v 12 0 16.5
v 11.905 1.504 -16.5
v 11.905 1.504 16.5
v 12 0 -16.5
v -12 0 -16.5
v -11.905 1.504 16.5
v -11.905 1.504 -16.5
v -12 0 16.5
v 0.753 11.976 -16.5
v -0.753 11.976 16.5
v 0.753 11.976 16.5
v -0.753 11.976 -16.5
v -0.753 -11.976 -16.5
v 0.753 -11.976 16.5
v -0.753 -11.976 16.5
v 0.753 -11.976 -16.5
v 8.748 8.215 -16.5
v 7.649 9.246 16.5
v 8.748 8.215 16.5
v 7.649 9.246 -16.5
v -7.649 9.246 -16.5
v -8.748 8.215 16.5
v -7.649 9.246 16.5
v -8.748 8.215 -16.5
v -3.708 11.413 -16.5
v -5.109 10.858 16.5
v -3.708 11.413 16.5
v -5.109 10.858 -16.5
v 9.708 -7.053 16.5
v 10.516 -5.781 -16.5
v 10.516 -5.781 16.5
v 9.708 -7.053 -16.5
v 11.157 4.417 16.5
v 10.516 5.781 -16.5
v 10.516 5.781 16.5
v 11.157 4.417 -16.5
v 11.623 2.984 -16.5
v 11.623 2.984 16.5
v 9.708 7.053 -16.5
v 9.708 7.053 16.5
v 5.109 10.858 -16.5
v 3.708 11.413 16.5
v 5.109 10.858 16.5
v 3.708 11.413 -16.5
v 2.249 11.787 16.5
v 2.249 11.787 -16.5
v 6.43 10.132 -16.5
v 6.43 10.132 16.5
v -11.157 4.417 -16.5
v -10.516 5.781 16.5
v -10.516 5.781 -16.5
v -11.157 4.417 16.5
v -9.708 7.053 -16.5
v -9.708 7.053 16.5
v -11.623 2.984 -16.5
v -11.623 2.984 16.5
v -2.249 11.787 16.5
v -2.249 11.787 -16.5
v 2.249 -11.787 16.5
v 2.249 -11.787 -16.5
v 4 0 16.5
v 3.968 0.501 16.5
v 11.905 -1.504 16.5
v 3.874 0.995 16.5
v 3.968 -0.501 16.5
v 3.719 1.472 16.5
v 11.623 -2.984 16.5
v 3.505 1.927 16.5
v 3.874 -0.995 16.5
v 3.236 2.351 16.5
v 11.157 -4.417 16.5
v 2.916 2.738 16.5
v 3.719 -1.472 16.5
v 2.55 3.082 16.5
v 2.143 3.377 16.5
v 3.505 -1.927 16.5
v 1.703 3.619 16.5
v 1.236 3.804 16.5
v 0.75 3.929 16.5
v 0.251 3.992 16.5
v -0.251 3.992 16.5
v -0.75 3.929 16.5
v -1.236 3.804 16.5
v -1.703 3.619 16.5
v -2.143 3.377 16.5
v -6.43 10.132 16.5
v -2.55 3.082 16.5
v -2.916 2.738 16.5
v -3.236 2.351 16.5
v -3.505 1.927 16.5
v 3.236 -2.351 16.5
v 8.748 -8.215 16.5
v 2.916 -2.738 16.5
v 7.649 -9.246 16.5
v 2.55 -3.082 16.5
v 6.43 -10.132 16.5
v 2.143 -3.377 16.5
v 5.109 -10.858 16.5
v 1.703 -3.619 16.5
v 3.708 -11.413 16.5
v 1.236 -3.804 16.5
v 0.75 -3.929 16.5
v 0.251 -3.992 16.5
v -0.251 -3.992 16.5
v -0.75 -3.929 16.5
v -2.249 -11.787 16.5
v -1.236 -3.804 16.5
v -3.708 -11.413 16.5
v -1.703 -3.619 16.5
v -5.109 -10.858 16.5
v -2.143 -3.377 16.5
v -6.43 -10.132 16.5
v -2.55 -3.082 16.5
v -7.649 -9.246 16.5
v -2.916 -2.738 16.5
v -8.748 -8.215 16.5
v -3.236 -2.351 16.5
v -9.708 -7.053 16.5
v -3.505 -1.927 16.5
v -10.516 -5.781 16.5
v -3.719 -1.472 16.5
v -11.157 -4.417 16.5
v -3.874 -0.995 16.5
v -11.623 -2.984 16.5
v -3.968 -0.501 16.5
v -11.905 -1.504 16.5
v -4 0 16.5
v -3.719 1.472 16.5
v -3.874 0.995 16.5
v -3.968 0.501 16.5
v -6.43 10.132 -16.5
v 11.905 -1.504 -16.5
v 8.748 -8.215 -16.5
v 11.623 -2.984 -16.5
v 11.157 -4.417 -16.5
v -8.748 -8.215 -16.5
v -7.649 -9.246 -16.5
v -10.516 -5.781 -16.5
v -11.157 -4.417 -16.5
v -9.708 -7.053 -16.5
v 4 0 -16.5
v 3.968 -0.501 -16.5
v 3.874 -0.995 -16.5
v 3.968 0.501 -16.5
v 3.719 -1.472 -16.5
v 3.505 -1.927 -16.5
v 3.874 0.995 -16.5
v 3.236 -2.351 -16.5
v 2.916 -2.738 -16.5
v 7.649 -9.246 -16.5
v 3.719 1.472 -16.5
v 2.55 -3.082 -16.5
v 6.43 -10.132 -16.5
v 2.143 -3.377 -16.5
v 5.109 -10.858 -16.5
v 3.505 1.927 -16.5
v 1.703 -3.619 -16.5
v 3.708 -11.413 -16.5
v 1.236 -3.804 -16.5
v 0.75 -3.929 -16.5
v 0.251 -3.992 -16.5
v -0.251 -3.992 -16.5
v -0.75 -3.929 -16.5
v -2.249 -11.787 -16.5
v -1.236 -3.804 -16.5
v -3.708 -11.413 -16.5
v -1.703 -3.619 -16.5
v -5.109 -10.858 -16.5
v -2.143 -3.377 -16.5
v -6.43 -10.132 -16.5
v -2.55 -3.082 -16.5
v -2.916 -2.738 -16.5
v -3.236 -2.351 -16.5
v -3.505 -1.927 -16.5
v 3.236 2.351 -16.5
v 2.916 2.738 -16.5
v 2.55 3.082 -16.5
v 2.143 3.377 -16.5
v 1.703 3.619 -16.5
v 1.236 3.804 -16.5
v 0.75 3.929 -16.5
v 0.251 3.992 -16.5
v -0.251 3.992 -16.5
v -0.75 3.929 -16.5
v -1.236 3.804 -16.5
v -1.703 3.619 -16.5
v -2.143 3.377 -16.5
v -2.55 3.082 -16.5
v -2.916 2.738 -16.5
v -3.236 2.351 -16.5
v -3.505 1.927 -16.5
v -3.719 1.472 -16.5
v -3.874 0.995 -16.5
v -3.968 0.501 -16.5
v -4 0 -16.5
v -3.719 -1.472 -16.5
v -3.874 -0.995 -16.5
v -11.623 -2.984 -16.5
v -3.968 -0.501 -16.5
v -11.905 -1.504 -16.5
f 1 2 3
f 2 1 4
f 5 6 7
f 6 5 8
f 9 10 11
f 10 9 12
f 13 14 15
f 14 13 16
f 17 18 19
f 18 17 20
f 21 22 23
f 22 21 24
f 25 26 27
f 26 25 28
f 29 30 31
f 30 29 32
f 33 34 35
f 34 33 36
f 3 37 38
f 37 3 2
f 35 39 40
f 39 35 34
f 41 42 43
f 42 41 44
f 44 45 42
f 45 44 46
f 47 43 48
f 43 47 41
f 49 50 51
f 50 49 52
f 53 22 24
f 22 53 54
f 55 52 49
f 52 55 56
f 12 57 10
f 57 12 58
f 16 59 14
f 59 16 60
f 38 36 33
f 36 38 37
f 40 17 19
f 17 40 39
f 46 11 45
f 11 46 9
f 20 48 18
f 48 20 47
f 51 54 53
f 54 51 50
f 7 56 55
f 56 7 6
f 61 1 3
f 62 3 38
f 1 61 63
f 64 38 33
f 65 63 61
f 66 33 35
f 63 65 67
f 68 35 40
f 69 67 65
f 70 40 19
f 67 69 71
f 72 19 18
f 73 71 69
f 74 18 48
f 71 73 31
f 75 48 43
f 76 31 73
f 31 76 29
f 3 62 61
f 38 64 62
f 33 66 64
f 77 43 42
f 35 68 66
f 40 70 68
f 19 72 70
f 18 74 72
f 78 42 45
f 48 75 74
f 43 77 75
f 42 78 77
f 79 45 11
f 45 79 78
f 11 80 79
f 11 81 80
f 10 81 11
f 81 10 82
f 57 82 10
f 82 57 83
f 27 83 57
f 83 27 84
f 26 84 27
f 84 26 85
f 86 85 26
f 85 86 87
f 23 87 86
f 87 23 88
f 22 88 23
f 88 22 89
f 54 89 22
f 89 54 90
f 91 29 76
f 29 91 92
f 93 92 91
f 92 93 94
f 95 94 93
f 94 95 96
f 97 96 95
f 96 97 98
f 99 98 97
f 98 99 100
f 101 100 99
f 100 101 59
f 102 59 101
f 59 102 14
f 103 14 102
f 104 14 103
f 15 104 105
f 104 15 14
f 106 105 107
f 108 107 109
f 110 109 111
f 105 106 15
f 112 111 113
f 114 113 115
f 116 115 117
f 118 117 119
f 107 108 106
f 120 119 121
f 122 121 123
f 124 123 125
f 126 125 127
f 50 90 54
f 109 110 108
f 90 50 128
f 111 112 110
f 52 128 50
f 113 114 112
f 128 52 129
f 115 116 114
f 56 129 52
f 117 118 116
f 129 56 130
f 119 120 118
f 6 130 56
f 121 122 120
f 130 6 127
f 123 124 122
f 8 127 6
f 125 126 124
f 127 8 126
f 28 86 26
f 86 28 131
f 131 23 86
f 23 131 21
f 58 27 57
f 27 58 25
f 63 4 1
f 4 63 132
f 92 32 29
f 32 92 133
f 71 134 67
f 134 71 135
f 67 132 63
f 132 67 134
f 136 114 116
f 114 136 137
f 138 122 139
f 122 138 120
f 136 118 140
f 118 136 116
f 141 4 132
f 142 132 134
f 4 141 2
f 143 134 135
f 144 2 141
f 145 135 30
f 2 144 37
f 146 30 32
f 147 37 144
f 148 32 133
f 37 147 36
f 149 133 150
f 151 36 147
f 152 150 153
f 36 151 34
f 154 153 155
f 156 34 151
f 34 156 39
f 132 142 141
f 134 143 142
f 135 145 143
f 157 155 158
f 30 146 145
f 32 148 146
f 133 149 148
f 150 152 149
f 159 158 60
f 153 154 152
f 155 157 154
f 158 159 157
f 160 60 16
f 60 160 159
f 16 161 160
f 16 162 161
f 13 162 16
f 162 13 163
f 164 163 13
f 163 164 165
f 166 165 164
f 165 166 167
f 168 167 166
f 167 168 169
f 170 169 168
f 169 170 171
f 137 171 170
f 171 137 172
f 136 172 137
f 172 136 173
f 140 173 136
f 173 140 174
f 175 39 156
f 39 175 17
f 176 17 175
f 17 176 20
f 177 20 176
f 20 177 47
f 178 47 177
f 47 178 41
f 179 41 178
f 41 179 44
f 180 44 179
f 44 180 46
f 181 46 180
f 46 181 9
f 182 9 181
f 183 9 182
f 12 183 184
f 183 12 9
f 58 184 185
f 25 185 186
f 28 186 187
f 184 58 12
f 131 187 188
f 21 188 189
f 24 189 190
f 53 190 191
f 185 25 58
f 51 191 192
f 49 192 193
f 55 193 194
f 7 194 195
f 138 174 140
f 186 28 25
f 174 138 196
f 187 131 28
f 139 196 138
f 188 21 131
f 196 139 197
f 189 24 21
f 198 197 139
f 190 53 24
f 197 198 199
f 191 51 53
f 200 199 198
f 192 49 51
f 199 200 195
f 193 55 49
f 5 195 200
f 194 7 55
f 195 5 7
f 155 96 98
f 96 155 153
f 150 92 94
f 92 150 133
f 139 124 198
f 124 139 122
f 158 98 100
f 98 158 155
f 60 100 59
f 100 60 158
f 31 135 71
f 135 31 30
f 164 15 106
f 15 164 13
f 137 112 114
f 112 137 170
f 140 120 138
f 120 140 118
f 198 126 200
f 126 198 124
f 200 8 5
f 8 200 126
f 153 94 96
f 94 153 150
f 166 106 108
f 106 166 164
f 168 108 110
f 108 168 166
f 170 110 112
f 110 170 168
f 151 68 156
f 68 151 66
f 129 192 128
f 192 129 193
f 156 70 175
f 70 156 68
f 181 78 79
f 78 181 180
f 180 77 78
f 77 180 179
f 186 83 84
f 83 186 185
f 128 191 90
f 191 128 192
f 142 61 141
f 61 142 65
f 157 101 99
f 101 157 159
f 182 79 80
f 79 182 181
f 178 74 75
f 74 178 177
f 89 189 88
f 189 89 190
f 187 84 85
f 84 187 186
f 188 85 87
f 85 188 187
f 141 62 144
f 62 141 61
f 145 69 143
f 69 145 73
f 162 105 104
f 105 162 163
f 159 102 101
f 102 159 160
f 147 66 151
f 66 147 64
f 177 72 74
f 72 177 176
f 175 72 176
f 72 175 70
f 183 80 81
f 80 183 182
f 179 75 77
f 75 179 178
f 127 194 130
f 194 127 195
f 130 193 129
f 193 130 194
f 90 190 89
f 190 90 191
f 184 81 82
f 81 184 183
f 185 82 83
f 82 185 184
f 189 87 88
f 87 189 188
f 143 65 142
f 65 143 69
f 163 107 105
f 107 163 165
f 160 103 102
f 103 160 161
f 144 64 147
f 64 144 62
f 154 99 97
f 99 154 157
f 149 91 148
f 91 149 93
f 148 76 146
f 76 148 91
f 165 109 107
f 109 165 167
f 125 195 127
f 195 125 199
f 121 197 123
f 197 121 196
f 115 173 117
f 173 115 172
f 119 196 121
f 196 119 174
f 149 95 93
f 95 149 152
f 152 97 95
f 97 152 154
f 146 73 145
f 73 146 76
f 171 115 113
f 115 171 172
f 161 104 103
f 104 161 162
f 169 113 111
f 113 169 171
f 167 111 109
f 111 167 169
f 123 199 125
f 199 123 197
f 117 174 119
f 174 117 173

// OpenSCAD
$fn = 50;


difference() {
	union() {
		translate(v = [0, 0, -16.5000000000]) {
			cylinder(h = 33, r = 12.0000000000);
		}
	}
	union() {
		translate(v = [0, 0, -100.0000000000]) {
			cylinder(h = 200, r = 4);
		}
	}
}
